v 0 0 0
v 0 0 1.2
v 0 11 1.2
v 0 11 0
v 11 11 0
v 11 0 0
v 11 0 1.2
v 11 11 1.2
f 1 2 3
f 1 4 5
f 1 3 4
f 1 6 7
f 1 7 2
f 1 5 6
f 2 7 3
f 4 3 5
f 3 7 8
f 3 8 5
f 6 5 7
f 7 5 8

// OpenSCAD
/* Warning, this is a very basic generator with a lot of approximation 
input data : [TFBGA, 4GB, 11x11x1.2mm, 196, , B, C04-21507B]
generated by com.zoubworld.electronics.cad.model3d.Basic
Date : Sun Feb 15 10:50:49 CET 2026
*/

//body
color("black")
translate([0,0,0])
cube([11.0,11.0,1.2], center=false);
